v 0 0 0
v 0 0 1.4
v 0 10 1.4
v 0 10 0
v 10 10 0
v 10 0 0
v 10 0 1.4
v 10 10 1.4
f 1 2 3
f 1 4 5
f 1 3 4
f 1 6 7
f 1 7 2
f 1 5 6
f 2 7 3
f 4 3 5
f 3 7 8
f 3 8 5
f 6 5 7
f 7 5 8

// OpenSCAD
/* Warning, this is a very basic generator with a lot of approximation 
input data : [LQFP, CGA, 10x10x1.4mm, 80, , A, C04-01075A]
generated by com.zoubworld.electronics.cad.model3d.Basic
Date : Sun Feb 15 10:50:49 CET 2026
*/

//body
color("black")
translate([0,0,0])
cube([10.0,10.0,1.4], center=false);
